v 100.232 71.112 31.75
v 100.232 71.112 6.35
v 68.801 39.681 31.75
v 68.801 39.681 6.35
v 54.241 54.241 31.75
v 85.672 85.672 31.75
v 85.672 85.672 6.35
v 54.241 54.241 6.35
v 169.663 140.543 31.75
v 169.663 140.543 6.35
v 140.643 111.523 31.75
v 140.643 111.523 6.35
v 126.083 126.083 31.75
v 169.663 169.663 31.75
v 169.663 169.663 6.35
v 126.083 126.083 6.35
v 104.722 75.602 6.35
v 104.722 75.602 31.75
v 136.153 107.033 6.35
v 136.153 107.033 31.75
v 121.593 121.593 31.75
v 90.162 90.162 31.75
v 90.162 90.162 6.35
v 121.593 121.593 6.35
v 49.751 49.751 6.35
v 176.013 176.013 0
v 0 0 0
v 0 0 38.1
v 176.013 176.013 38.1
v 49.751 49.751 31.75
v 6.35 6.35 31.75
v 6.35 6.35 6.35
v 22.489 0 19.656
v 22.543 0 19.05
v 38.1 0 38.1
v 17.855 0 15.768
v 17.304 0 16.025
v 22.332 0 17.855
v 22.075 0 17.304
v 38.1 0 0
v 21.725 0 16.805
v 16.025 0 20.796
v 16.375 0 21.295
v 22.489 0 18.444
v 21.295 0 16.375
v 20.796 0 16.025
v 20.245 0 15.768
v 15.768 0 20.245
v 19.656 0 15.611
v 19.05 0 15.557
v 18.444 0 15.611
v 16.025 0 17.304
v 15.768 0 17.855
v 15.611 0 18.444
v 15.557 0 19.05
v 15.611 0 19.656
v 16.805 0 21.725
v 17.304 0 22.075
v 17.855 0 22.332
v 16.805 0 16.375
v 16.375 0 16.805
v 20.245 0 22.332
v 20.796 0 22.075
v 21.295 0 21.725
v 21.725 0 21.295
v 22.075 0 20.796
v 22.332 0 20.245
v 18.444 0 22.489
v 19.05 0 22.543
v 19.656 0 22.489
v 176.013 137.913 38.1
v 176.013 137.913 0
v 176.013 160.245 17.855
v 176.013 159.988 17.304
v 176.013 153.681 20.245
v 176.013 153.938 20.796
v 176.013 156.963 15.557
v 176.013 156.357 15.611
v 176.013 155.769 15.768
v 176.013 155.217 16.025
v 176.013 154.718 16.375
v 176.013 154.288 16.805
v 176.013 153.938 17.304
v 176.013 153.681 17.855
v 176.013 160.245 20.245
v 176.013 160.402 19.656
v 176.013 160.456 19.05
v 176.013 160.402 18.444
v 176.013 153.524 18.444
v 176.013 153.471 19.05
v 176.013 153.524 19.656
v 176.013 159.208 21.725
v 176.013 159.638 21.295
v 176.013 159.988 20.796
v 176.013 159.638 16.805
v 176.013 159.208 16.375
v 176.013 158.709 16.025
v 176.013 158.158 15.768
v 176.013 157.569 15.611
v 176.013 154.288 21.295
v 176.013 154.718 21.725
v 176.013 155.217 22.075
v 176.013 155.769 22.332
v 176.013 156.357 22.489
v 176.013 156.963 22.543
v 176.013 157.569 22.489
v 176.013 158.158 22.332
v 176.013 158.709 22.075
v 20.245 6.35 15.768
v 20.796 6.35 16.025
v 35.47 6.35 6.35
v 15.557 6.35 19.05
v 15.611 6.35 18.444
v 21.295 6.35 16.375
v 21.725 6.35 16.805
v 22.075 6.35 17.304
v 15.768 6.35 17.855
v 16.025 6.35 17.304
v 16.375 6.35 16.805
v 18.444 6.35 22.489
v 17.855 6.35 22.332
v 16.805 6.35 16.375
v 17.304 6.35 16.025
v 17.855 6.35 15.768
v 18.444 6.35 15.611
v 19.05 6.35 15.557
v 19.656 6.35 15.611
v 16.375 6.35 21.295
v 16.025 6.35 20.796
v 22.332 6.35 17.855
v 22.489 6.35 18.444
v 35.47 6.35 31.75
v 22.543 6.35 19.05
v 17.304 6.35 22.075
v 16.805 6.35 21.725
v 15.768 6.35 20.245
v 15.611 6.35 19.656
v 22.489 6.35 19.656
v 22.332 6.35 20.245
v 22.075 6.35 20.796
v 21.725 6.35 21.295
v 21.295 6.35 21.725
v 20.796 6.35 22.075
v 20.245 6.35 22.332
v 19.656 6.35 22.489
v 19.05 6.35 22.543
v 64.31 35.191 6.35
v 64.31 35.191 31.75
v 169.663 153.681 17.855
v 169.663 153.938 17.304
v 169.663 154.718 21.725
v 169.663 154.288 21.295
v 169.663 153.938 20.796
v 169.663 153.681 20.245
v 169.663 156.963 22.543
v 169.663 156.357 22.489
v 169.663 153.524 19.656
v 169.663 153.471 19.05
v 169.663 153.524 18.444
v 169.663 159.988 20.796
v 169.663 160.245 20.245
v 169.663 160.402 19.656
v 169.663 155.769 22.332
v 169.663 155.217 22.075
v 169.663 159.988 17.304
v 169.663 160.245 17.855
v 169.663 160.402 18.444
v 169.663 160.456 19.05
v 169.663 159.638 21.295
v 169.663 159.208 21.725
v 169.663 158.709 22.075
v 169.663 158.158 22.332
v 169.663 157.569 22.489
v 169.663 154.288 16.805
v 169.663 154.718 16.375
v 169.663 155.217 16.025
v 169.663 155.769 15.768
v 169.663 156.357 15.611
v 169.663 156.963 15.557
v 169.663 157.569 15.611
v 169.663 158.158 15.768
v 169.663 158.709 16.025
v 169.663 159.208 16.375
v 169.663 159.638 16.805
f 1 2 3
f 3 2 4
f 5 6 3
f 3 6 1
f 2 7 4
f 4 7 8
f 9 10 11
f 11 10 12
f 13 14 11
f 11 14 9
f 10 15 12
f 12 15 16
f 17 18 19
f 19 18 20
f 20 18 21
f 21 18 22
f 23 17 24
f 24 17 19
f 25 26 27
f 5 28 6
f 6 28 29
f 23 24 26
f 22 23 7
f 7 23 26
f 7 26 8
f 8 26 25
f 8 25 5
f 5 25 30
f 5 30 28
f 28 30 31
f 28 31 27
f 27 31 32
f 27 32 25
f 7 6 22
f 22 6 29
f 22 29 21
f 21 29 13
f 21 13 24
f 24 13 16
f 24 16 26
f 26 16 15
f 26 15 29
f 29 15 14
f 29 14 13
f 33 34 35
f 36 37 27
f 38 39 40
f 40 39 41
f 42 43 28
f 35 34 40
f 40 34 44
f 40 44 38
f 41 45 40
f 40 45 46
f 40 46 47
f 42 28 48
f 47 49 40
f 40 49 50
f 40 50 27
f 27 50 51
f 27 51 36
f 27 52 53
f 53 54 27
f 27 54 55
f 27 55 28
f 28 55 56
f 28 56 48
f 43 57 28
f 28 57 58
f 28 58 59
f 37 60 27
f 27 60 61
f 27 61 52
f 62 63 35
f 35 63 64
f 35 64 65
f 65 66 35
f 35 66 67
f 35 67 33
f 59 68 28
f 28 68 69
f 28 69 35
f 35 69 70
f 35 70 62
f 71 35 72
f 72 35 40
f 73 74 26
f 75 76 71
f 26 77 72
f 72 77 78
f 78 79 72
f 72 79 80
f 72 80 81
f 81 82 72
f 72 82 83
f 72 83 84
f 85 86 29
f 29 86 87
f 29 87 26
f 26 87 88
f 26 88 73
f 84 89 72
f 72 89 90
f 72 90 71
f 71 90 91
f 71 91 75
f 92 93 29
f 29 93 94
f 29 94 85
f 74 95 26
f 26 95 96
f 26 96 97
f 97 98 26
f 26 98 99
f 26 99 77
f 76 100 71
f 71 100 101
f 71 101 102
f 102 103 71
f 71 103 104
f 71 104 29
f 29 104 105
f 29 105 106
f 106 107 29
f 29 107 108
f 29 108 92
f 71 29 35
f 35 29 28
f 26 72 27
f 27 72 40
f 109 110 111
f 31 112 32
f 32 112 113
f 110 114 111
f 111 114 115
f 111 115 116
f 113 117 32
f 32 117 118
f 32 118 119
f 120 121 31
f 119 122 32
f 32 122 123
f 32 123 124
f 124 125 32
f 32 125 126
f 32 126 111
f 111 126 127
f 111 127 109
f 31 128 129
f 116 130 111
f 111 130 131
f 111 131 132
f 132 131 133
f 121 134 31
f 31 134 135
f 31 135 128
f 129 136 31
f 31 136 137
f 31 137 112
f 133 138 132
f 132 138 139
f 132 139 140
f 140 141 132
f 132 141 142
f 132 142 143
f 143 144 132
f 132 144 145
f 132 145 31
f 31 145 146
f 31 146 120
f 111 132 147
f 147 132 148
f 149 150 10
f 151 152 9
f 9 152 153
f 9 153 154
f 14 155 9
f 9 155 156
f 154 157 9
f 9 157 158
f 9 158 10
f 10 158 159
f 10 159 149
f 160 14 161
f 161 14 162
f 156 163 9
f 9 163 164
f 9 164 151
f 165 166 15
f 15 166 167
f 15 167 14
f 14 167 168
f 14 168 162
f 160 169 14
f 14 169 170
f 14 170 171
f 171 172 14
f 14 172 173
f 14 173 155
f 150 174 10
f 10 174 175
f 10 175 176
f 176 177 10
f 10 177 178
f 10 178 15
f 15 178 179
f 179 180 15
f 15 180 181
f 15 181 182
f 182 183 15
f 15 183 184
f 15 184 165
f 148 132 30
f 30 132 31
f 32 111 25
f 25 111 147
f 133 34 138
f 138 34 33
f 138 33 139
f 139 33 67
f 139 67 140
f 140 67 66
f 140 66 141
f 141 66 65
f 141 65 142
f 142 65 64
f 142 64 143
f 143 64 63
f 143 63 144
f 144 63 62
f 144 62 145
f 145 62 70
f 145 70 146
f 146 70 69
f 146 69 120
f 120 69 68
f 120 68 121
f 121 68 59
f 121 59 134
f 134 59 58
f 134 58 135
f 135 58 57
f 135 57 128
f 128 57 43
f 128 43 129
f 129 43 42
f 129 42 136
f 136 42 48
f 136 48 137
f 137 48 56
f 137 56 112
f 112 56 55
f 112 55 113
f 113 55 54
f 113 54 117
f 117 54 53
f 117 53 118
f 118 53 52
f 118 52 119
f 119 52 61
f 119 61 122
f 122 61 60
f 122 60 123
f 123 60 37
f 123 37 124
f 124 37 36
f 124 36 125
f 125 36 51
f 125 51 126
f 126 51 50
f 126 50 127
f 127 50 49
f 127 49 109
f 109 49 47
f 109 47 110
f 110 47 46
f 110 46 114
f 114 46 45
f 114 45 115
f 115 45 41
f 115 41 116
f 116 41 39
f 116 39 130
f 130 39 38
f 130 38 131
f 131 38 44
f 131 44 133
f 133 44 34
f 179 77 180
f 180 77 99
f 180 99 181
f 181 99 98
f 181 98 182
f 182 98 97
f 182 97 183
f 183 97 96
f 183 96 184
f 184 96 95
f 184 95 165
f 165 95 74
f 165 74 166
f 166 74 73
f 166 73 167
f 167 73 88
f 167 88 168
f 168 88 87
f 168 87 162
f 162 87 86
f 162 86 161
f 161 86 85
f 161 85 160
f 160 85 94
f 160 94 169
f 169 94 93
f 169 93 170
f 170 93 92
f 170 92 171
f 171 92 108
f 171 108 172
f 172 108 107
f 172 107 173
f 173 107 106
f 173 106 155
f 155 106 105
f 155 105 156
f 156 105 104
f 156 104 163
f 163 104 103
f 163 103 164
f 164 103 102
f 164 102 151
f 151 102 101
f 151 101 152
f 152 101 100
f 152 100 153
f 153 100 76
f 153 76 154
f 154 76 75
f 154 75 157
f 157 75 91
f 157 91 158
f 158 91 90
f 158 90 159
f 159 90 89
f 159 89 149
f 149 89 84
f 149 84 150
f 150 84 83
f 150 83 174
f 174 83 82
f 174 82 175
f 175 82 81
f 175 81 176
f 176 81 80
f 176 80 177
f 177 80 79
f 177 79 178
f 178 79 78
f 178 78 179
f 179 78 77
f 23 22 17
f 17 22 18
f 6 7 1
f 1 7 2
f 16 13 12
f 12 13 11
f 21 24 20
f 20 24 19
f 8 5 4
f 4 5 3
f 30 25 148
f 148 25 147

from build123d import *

# Parameters (mm, degrees)
BOSS_EXTRUDE1_DEPTH = 38.1
SHELL1_T            = -6.35
SKETCH3_R           = 3.4925
CUT_EXTRUDE1_DEPTH  = 6.35
SKETCH4_R           = 3.4925
CUT_EXTRUDE2_DEPTH  = 59.436
SKETCH6_W           = 25.4
SKETCH6_H           = 6.35
BOSS_EXTRUDE2_DEPTH = 26.940768


with BuildPart() as part:
    # Sketch1 → Boss-Extrude1 (new body)
    with BuildSketch(Plane.XY):
        Polygon((0, 0), (176.013019973, 176.013019973), (176.013019973, 137.913019973), (38.1, 0), align=None)
    extrude(amount=BOSS_EXTRUDE1_DEPTH)

    # Shell1
    shell1_openings = [part.faces().sort_by_distance(p)[0] for p in [
        (88.006509986, 88.006509986, 19.05),
    ]]
    offset(amount=SHELL1_T, openings=shell1_openings, kind=Kind.INTERSECTION)

    # Sketch3 → Cut-Extrude1 (cut)
    with BuildSketch(Plane.XZ):
        with Locations((19.05, 19.05)):
            Circle(SKETCH3_R)
    extrude(amount=-CUT_EXTRUDE1_DEPTH, mode=Mode.SUBTRACT)

    # Sketch4 → Cut-Extrude2 (cut)
    with BuildSketch(Plane(origin=(176.013019973, 0, 0), x_dir=(0, 0, -1), z_dir=(1, 0, 0))):
        with Locations((-19.05, 156.963019973)):
            Circle(SKETCH4_R)
    extrude(amount=-CUT_EXTRUDE2_DEPTH, mode=Mode.SUBTRACT)

    # Sketch6 → Boss-Extrude2 (add)
    with BuildSketch(Plane(origin=(0, 0, 0), x_dir=(0, 0, 1), z_dir=(-0.707106781, 0.707106781, 0))):
        with Locations((19.05, 124.333)):
            Rectangle(SKETCH6_W, SKETCH6_H)
        with Locations((19.05, 175.133)):
            Rectangle(SKETCH6_W, SKETCH6_H)
        with Locations((19.05, 73.533)):
            Rectangle(SKETCH6_W, SKETCH6_H)
    extrude(amount=-BOSS_EXTRUDE2_DEPTH)


solid = part.part
